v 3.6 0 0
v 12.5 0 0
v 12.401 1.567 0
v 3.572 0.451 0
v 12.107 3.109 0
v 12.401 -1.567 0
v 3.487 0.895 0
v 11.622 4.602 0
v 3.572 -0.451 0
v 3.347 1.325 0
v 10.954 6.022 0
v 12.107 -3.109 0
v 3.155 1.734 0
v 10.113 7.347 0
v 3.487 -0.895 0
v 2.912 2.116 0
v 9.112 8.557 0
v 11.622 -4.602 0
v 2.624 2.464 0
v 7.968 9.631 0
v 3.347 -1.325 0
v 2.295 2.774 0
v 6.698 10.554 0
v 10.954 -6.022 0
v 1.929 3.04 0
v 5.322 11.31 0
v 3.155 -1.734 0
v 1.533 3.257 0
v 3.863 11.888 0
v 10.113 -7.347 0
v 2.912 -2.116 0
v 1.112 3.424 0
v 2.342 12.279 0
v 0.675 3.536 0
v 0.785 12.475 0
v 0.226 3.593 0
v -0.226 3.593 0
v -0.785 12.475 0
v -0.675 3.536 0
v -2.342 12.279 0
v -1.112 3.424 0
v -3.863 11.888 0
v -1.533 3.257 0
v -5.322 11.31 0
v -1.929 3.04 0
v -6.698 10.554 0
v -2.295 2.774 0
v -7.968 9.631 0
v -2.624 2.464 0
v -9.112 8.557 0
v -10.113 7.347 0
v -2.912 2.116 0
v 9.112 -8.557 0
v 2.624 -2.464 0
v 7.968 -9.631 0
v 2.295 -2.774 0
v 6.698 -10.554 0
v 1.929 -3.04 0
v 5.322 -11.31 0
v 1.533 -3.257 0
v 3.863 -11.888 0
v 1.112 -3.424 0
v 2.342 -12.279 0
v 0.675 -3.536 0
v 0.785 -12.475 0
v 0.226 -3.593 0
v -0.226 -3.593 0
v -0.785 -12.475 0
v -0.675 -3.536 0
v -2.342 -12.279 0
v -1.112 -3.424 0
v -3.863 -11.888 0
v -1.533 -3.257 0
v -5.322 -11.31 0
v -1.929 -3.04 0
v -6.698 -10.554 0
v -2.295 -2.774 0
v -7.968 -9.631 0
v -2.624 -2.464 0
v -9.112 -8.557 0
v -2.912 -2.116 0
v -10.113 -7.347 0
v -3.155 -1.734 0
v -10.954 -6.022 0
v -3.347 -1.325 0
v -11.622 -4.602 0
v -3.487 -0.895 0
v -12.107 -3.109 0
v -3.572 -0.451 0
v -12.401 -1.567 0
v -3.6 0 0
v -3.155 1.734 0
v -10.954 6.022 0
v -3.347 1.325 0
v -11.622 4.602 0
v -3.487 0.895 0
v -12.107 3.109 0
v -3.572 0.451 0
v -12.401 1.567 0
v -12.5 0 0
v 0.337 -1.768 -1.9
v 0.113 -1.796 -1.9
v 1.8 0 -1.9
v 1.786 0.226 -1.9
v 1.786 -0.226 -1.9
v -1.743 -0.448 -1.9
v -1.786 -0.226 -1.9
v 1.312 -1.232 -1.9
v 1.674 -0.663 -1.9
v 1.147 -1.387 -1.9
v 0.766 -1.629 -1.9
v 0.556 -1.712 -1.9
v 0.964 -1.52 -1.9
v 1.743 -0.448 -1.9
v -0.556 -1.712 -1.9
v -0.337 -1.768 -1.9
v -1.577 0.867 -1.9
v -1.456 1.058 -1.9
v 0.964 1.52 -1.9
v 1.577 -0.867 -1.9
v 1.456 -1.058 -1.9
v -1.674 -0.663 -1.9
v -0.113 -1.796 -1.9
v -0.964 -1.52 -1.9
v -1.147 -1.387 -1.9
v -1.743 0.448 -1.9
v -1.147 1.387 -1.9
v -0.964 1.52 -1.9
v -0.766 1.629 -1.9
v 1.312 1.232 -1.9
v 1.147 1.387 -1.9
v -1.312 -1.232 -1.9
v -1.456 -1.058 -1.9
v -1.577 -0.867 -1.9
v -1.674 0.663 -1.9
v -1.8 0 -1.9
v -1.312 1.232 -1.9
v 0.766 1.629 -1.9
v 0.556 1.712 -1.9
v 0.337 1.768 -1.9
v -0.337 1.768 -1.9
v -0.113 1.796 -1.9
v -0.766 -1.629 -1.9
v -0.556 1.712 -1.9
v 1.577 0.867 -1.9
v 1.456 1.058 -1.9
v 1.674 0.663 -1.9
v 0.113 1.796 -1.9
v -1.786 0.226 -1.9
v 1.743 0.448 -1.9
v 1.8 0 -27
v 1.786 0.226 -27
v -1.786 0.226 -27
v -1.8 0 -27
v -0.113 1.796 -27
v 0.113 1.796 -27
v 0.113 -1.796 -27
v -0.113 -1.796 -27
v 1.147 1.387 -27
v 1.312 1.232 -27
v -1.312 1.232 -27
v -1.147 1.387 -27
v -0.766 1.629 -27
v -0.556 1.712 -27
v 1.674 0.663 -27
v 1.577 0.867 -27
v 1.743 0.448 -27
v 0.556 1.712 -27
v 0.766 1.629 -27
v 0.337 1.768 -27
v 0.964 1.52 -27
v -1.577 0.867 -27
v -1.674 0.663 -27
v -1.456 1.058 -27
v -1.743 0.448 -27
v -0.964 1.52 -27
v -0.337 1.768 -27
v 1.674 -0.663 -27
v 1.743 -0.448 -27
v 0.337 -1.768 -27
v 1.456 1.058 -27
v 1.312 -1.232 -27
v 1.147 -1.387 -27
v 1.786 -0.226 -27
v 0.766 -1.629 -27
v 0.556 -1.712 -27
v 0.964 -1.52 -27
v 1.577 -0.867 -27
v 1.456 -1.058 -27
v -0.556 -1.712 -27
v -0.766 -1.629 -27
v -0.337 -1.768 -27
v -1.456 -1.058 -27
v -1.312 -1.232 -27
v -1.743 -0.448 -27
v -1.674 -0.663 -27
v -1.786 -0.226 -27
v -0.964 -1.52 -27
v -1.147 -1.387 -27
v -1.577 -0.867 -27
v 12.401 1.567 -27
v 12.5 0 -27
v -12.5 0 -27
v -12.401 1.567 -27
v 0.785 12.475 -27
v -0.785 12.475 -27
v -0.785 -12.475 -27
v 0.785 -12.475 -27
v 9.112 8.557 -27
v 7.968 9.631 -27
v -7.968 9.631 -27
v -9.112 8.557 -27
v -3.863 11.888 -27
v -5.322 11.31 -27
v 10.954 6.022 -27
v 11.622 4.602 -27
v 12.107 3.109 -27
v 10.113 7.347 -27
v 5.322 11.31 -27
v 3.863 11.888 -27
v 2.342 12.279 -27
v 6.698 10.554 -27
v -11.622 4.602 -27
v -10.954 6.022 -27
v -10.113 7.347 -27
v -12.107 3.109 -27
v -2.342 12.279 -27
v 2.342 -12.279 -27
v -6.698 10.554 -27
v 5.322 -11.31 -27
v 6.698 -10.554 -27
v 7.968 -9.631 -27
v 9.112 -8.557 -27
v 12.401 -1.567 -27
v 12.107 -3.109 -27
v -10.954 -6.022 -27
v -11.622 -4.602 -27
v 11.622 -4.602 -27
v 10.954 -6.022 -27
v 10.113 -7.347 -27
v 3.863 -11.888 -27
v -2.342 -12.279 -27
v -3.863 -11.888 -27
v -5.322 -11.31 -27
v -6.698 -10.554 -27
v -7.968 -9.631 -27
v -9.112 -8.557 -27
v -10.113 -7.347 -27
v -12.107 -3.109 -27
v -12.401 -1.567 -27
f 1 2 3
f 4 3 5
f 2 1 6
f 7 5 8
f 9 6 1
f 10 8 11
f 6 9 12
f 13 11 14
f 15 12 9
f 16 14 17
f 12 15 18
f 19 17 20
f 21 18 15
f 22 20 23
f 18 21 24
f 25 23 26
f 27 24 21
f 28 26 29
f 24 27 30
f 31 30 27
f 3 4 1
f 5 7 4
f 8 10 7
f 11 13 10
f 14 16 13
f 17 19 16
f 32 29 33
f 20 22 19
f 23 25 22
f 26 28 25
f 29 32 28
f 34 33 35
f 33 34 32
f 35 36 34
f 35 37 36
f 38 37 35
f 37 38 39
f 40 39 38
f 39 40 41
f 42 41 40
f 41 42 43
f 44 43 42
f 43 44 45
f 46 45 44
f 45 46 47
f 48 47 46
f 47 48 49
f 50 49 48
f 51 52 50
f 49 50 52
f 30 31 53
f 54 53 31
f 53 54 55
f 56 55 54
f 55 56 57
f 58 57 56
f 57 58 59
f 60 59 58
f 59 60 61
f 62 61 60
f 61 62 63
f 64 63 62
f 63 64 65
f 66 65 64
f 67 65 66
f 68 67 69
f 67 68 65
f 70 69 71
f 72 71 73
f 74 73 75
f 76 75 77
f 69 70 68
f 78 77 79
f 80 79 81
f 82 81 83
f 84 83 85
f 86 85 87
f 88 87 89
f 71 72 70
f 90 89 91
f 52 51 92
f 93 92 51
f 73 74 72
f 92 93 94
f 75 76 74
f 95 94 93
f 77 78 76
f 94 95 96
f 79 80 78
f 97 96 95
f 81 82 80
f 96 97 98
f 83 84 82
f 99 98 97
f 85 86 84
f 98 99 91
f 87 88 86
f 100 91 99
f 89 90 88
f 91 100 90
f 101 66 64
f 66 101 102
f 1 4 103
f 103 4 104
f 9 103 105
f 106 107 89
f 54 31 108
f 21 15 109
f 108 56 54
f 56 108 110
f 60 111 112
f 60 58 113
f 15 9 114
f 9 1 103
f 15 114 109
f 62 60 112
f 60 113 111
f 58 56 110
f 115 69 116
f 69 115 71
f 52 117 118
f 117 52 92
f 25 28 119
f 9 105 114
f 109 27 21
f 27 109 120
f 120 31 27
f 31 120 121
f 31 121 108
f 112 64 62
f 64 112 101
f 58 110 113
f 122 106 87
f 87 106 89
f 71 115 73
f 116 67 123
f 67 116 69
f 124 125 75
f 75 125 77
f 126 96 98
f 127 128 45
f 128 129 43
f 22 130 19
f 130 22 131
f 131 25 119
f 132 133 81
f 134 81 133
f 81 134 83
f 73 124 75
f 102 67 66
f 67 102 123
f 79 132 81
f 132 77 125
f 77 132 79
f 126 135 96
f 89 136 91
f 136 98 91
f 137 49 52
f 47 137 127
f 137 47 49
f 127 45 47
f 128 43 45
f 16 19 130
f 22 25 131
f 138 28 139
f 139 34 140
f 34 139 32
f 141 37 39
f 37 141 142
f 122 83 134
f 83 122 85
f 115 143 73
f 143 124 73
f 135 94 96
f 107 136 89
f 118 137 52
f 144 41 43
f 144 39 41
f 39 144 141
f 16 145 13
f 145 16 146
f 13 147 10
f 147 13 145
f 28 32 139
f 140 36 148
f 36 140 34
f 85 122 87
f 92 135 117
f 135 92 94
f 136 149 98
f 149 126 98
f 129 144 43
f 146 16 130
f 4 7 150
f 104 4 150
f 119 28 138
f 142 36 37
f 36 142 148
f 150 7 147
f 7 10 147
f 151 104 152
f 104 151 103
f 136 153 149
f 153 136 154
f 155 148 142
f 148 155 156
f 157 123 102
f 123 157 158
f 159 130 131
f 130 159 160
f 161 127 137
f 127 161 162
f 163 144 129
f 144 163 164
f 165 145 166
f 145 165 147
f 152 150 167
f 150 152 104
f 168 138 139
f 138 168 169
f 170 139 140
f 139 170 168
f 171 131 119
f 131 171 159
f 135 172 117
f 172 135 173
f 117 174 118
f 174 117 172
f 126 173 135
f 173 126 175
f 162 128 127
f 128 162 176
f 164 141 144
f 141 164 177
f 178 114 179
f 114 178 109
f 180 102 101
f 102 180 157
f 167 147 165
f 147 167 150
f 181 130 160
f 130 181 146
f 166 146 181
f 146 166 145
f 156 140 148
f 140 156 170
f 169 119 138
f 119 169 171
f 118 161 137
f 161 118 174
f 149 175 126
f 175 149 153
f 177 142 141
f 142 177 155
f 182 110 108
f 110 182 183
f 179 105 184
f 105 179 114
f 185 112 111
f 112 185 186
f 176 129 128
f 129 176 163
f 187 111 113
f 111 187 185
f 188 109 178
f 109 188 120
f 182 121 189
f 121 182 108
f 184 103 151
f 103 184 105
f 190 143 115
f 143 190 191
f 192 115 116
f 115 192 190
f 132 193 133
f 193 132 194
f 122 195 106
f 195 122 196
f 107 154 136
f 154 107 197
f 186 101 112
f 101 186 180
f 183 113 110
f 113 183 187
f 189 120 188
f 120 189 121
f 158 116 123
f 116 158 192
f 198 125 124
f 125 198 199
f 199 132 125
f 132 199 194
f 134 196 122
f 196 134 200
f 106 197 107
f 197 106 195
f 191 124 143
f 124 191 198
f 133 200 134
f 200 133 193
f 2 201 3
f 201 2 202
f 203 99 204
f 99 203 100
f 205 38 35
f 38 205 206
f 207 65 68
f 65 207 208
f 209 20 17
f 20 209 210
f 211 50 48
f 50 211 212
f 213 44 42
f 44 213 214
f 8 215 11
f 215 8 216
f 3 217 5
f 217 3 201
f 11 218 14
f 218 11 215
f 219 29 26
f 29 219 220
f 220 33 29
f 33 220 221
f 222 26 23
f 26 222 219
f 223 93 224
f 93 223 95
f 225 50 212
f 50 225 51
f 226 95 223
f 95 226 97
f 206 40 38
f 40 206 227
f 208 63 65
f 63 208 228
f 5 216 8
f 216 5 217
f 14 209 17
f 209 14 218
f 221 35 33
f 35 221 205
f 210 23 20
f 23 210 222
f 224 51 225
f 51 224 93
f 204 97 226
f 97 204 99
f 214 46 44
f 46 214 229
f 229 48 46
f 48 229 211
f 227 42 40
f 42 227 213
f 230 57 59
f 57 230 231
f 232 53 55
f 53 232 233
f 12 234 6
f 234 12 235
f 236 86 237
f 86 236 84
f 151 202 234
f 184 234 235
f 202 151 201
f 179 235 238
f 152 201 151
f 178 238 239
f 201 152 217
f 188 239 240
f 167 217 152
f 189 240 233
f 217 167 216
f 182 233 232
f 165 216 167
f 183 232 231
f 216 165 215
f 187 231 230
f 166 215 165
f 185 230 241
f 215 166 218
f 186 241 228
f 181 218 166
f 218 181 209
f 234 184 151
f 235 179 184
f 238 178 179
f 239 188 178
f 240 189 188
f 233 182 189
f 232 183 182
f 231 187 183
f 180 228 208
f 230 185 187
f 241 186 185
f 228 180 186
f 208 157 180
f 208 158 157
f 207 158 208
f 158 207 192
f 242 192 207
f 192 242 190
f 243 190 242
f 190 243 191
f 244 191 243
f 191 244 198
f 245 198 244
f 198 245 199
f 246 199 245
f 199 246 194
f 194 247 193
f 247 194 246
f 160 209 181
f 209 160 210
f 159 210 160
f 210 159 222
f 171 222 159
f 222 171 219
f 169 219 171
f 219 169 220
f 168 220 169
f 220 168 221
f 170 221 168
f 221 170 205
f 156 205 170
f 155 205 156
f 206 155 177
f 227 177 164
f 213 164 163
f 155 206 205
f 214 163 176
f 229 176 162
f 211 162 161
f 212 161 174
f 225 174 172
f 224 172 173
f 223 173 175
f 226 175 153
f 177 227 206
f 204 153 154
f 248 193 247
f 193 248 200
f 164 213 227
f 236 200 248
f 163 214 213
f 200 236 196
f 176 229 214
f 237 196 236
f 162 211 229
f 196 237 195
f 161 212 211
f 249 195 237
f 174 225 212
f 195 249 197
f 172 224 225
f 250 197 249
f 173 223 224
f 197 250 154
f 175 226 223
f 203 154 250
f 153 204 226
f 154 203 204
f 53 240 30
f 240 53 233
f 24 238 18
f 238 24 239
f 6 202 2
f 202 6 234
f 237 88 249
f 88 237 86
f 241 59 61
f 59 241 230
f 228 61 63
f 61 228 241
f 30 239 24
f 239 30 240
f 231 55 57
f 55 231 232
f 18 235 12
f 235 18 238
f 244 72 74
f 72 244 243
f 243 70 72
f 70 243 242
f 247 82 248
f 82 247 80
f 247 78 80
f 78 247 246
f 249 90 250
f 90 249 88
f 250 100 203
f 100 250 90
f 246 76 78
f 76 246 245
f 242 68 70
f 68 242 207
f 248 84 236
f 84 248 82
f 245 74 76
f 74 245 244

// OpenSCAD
$fn = 50;

difference() {
	union() {
		translate(v = [0, 0, -27.0]) {
			cylinder(h = 27, r = 12.5);
		}
	}
	union() {
		translate(v = [0, 0, 0]) {
			rotate(a = [0, 0, 0]) {
				difference() {
					union() {
						translate(v = [0, 0, -30.0]) {
							cylinder(h = 30, r = 1.5);
						}
						translate(v = [0, 0, -1.9]) {
							cylinder(h = 1.9, r1 = 1.8, r2 = 3.6);
						}
						translate(v = [0, 0, -30.0]) {
							cylinder(h = 30, r = 1.8);
						}
						translate(v = [0, 0, -30.0]) {
							cylinder(h = 30, r = 1.5);
						}
					}
					union();
				}
			}
		}
	}
}
